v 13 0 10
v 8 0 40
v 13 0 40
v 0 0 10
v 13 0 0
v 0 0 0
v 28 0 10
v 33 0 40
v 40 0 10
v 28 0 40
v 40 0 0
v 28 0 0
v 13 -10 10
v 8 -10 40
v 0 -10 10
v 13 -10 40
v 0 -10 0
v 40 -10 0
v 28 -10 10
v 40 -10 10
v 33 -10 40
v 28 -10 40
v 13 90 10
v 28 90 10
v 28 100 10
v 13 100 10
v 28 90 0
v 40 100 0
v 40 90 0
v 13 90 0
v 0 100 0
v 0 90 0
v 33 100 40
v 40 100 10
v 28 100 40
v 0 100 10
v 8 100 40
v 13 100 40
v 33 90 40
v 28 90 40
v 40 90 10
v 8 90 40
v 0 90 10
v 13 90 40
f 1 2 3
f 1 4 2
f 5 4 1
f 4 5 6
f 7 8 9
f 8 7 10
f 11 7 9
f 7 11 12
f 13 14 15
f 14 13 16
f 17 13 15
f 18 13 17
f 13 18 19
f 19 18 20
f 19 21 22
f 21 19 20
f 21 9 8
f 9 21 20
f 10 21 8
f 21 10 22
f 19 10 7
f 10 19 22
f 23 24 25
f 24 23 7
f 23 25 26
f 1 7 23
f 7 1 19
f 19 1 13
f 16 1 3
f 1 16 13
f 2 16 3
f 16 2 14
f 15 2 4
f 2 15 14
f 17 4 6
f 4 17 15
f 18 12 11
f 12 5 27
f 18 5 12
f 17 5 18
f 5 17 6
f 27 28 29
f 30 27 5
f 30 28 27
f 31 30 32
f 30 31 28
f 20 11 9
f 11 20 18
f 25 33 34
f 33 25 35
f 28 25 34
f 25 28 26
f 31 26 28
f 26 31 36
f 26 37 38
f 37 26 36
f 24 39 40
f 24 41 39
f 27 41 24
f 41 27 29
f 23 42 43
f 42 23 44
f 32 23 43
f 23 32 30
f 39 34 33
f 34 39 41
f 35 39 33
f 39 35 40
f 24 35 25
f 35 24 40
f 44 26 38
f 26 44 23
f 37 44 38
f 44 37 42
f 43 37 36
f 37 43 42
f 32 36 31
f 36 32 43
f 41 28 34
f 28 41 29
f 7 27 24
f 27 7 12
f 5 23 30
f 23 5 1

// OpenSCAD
// 基礎部分
module plank(rotate_x, rotate_y, rotate_z){

	rotate([rotate_x, rotate_y, rotate_z]){

		// 厚みを10mmに設定
		linear_extrude(10){

			//時計回り
			polygon(points=[[0, 0], [0, 10], [8, 40], [13, 40], [13, 10], [28, 10], [28, 40], [33, 40], [40, 10], [40, 0]]); 

		}
	
	}

}

// 1枚目
plank(90, 0, 0);

// y軸方向に100mm移動
translate([0, 100, 0]){

	// 2枚目
	plank(90, 0, 0);

}

// x軸方向に13mm移動
translate([13, 0, 0]){

	cube([15, 100, 10]);

}
